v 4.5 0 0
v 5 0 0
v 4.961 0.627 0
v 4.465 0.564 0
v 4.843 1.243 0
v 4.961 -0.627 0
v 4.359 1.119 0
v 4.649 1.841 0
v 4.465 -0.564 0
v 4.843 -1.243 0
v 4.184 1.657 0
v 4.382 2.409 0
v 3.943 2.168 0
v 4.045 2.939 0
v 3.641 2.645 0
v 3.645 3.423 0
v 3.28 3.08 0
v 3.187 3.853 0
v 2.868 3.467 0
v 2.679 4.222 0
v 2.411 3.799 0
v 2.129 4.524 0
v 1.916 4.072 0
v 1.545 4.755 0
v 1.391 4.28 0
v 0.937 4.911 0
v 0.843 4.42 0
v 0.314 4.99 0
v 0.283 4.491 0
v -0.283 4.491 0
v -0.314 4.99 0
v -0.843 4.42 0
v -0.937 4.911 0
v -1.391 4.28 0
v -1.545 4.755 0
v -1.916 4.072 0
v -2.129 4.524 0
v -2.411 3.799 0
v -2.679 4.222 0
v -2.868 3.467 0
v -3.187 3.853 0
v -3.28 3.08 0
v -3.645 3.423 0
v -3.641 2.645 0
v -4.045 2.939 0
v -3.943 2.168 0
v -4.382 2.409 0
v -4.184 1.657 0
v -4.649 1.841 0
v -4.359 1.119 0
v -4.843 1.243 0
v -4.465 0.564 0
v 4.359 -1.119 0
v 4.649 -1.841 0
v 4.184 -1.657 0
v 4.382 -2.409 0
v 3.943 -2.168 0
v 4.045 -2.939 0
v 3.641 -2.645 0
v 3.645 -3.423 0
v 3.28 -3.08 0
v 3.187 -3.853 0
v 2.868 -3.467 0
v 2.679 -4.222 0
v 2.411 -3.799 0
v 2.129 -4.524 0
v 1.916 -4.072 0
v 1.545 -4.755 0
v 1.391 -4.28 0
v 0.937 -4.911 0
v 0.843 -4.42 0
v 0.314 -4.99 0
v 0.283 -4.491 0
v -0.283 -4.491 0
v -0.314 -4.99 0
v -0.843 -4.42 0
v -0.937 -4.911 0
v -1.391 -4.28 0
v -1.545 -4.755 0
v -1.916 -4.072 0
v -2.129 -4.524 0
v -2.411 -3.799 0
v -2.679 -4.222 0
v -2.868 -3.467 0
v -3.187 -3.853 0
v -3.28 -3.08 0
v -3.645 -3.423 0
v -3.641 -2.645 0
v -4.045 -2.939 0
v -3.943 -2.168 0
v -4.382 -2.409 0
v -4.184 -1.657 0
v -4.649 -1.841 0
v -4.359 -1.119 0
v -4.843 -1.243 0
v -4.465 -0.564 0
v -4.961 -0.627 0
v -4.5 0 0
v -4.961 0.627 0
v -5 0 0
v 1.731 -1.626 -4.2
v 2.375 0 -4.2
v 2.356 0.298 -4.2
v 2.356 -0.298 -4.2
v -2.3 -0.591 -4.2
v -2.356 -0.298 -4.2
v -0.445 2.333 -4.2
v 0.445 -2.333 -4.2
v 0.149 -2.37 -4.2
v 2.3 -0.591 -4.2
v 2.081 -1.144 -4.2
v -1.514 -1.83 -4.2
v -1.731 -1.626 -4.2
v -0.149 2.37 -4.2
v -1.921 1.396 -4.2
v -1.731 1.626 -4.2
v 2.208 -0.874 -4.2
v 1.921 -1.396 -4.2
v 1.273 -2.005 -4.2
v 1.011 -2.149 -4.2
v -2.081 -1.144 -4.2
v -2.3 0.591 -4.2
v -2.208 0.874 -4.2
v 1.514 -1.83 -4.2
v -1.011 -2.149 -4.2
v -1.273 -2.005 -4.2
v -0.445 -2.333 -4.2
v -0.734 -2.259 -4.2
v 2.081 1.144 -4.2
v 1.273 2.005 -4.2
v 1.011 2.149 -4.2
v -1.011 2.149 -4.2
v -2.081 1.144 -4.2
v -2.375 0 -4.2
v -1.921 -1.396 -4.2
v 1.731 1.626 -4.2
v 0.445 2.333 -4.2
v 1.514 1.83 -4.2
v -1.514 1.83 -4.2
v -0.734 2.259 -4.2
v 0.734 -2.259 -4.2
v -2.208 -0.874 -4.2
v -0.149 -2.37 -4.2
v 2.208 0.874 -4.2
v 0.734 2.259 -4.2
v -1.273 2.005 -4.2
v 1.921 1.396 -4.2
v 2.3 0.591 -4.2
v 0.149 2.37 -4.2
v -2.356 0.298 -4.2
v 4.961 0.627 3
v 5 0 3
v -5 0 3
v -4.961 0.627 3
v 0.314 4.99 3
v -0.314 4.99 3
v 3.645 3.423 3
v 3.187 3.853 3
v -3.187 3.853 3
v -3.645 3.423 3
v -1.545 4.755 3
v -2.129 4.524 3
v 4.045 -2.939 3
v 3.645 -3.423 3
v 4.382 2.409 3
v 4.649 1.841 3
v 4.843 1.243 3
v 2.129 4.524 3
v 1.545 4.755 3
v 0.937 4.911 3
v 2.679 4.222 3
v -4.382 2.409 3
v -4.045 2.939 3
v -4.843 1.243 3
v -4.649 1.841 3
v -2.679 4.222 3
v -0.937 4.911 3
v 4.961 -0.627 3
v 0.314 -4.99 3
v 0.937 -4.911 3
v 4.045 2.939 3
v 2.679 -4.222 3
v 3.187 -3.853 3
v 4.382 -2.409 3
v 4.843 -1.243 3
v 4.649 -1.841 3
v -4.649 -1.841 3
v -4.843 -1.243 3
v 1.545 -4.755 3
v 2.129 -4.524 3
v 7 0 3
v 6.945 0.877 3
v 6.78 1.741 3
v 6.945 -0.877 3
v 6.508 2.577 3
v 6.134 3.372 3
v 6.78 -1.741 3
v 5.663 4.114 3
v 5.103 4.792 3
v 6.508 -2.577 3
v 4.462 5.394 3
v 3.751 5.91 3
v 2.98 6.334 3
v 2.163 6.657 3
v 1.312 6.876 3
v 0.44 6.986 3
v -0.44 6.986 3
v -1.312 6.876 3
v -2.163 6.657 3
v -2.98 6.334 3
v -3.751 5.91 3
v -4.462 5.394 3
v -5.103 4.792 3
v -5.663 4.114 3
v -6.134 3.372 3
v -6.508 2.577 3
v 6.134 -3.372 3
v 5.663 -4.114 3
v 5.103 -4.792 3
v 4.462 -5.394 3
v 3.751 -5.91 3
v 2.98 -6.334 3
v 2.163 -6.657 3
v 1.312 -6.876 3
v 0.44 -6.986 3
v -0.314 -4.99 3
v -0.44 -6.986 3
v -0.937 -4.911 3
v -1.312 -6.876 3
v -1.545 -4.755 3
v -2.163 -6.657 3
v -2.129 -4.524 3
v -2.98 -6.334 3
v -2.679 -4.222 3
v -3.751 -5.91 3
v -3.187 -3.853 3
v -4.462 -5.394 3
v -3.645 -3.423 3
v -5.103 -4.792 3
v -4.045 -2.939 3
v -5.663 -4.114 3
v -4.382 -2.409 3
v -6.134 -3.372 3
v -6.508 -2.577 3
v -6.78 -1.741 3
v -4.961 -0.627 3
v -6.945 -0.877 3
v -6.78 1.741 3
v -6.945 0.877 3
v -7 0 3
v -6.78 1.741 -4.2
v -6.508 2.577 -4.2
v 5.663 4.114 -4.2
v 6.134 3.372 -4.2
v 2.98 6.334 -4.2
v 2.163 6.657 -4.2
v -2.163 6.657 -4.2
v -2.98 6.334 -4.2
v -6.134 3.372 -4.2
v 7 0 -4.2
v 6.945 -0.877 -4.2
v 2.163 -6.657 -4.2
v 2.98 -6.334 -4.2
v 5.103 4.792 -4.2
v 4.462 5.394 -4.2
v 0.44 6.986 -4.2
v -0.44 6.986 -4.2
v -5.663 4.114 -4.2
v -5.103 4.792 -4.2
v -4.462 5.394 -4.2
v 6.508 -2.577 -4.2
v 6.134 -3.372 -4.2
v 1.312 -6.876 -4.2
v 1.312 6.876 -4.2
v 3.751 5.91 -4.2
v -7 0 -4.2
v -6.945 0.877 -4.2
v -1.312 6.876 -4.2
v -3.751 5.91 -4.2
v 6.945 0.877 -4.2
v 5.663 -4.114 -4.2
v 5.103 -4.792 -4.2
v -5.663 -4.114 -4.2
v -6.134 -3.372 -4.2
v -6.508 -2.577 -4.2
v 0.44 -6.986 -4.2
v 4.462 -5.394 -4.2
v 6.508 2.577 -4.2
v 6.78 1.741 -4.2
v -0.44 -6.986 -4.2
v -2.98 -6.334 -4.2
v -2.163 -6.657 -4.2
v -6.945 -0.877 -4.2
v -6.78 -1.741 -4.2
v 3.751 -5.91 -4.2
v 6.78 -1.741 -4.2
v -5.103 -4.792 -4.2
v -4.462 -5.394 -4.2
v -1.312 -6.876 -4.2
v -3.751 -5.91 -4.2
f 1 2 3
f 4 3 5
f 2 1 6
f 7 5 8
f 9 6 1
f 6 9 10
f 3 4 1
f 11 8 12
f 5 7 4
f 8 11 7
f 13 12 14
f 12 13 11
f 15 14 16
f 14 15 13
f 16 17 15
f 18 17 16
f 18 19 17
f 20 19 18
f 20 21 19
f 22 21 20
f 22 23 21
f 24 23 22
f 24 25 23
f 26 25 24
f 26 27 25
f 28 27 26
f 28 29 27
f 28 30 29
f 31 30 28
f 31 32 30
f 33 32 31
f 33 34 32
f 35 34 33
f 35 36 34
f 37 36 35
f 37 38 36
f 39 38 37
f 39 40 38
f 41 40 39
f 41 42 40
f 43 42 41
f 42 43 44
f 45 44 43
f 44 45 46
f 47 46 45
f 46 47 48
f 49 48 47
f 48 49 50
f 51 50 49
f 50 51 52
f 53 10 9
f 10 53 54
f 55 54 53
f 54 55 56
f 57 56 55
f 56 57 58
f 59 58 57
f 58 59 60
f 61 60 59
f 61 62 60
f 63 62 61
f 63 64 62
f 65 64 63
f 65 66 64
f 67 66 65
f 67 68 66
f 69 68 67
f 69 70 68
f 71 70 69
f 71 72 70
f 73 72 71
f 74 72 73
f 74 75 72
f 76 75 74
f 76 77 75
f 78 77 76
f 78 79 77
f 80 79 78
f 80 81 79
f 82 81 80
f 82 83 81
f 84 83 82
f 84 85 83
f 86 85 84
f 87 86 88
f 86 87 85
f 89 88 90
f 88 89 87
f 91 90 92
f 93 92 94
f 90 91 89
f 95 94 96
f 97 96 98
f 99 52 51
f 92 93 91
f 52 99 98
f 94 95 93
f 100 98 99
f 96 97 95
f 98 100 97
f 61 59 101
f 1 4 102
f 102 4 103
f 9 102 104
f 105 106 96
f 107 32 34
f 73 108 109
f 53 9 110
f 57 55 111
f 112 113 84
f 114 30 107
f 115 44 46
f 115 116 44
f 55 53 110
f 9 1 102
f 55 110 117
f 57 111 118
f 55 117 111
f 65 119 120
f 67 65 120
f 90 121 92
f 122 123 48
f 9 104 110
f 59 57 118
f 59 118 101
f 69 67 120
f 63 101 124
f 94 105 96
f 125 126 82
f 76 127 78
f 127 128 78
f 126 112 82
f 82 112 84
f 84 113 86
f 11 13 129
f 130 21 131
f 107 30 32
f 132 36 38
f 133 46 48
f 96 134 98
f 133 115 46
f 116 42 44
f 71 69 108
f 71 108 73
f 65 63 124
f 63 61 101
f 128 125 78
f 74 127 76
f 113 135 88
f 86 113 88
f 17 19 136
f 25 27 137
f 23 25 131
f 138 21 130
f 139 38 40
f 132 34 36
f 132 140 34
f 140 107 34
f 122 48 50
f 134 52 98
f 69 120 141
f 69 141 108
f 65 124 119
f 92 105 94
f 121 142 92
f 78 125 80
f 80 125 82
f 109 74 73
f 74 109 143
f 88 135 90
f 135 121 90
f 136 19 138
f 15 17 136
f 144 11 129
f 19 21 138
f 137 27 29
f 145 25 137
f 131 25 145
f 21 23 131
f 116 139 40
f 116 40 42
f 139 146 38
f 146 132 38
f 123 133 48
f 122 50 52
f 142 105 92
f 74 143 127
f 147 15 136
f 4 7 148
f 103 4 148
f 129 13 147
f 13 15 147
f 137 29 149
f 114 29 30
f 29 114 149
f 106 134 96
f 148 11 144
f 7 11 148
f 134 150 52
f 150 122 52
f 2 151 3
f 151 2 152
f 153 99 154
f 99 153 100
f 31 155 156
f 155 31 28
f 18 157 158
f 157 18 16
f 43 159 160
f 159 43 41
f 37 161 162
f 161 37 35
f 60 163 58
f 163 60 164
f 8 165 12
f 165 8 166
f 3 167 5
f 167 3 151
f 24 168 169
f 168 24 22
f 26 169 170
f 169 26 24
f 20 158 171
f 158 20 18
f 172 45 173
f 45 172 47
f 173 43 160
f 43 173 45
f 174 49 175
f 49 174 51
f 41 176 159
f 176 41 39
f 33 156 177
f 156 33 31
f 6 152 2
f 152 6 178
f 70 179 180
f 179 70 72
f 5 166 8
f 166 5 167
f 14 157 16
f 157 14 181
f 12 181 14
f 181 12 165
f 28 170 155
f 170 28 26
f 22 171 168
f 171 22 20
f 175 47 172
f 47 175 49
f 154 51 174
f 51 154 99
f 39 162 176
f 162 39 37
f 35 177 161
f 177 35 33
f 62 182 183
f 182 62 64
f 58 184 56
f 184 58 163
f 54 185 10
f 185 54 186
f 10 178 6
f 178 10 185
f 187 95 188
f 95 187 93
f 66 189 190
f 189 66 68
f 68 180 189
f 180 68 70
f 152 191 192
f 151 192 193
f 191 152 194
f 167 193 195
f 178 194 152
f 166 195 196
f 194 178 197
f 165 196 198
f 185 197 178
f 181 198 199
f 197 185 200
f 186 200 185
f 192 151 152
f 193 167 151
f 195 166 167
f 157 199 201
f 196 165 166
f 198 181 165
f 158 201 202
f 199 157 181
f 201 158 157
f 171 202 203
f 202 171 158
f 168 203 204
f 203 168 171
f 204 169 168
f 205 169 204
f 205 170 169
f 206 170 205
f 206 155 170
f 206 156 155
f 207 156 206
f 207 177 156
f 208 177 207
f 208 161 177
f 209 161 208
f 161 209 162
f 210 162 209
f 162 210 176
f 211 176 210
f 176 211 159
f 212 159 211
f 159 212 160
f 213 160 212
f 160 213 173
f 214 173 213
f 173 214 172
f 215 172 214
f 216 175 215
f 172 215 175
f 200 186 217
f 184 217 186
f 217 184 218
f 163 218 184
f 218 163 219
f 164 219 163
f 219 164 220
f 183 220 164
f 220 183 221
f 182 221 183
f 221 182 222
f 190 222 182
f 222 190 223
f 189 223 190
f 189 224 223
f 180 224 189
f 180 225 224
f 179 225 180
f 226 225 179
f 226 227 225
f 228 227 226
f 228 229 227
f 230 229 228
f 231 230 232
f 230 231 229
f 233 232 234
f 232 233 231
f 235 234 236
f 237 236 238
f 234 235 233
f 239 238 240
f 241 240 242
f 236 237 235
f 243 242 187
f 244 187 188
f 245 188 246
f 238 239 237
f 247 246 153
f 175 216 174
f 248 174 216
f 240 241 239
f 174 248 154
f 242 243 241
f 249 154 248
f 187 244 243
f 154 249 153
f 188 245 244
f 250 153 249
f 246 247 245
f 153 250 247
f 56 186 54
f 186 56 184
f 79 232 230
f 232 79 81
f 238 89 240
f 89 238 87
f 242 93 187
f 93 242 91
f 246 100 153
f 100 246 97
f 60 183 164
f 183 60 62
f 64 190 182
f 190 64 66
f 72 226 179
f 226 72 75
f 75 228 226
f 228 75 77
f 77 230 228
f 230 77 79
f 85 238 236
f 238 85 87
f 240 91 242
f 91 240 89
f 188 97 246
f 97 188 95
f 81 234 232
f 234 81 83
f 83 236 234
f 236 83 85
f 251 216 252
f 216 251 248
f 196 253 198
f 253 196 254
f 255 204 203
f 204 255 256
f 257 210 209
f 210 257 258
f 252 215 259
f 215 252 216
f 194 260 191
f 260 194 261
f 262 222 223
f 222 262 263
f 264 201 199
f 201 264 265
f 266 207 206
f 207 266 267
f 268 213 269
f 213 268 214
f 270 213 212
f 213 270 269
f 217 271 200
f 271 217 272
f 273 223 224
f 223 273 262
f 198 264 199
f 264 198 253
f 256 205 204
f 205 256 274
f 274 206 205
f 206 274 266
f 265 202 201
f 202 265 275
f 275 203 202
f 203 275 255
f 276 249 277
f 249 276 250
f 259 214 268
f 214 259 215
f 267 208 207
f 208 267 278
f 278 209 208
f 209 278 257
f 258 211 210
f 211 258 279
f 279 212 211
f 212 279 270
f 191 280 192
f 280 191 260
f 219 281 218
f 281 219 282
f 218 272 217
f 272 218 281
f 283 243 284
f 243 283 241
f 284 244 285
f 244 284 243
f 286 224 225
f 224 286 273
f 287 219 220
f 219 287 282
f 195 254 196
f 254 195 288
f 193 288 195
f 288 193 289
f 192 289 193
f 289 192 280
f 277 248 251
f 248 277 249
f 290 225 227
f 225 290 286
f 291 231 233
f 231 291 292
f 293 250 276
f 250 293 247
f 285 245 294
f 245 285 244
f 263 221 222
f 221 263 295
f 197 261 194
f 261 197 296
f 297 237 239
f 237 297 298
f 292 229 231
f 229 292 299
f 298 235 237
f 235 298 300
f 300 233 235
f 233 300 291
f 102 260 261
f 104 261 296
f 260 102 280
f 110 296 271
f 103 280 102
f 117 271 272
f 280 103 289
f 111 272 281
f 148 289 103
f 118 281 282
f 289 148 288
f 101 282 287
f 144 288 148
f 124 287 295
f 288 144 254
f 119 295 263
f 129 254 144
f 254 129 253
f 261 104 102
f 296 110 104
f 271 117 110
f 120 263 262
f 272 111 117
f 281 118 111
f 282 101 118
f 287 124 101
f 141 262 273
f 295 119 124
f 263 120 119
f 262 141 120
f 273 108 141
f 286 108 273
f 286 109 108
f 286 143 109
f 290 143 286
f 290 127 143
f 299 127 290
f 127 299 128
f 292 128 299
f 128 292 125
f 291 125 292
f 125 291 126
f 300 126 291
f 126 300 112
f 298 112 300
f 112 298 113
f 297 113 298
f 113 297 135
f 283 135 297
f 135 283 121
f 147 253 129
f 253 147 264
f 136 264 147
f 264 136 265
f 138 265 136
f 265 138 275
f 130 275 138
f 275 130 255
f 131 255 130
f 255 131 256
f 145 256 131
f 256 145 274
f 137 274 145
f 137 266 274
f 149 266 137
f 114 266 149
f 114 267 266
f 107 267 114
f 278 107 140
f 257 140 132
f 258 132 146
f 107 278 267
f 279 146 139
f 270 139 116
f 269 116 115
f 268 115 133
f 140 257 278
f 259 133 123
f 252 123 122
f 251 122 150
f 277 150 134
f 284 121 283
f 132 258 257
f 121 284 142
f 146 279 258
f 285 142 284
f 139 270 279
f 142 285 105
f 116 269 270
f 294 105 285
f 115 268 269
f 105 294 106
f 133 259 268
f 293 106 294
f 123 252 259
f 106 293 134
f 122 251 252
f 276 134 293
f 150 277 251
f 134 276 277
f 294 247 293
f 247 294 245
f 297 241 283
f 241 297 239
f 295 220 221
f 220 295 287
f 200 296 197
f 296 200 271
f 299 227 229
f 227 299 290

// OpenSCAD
$fn = 50;

difference() {
	union() {
		translate(v = [0, 0, -4.2]) {
			cylinder(h = 7.2, r = 7.0);
		}
	}
	union() {
		translate(v = [0, 0, 0]) {
			rotate(a = [0, 0, 0]) {
				difference() {
					union() {
						translate(v = [0, 0, -7.2]) {
							cylinder(h = 7.2, r = 2.25);
						}
						translate(v = [0, 0, -4.2]) {
							cylinder(h = 4.2, r1 = 2.375, r2 = 4.5);
						}
						translate(v = [0, 0, -7.2]) {
							cylinder(h = 7.2, r = 2.375);
						}
						translate(v = [0, 0, -7.2]) {
							cylinder(h = 7.2, r = 2.25);
						}
					}
					union();
				}
			}
		}
		#cylinder(h = 3, r = 5.0);
	}
}
